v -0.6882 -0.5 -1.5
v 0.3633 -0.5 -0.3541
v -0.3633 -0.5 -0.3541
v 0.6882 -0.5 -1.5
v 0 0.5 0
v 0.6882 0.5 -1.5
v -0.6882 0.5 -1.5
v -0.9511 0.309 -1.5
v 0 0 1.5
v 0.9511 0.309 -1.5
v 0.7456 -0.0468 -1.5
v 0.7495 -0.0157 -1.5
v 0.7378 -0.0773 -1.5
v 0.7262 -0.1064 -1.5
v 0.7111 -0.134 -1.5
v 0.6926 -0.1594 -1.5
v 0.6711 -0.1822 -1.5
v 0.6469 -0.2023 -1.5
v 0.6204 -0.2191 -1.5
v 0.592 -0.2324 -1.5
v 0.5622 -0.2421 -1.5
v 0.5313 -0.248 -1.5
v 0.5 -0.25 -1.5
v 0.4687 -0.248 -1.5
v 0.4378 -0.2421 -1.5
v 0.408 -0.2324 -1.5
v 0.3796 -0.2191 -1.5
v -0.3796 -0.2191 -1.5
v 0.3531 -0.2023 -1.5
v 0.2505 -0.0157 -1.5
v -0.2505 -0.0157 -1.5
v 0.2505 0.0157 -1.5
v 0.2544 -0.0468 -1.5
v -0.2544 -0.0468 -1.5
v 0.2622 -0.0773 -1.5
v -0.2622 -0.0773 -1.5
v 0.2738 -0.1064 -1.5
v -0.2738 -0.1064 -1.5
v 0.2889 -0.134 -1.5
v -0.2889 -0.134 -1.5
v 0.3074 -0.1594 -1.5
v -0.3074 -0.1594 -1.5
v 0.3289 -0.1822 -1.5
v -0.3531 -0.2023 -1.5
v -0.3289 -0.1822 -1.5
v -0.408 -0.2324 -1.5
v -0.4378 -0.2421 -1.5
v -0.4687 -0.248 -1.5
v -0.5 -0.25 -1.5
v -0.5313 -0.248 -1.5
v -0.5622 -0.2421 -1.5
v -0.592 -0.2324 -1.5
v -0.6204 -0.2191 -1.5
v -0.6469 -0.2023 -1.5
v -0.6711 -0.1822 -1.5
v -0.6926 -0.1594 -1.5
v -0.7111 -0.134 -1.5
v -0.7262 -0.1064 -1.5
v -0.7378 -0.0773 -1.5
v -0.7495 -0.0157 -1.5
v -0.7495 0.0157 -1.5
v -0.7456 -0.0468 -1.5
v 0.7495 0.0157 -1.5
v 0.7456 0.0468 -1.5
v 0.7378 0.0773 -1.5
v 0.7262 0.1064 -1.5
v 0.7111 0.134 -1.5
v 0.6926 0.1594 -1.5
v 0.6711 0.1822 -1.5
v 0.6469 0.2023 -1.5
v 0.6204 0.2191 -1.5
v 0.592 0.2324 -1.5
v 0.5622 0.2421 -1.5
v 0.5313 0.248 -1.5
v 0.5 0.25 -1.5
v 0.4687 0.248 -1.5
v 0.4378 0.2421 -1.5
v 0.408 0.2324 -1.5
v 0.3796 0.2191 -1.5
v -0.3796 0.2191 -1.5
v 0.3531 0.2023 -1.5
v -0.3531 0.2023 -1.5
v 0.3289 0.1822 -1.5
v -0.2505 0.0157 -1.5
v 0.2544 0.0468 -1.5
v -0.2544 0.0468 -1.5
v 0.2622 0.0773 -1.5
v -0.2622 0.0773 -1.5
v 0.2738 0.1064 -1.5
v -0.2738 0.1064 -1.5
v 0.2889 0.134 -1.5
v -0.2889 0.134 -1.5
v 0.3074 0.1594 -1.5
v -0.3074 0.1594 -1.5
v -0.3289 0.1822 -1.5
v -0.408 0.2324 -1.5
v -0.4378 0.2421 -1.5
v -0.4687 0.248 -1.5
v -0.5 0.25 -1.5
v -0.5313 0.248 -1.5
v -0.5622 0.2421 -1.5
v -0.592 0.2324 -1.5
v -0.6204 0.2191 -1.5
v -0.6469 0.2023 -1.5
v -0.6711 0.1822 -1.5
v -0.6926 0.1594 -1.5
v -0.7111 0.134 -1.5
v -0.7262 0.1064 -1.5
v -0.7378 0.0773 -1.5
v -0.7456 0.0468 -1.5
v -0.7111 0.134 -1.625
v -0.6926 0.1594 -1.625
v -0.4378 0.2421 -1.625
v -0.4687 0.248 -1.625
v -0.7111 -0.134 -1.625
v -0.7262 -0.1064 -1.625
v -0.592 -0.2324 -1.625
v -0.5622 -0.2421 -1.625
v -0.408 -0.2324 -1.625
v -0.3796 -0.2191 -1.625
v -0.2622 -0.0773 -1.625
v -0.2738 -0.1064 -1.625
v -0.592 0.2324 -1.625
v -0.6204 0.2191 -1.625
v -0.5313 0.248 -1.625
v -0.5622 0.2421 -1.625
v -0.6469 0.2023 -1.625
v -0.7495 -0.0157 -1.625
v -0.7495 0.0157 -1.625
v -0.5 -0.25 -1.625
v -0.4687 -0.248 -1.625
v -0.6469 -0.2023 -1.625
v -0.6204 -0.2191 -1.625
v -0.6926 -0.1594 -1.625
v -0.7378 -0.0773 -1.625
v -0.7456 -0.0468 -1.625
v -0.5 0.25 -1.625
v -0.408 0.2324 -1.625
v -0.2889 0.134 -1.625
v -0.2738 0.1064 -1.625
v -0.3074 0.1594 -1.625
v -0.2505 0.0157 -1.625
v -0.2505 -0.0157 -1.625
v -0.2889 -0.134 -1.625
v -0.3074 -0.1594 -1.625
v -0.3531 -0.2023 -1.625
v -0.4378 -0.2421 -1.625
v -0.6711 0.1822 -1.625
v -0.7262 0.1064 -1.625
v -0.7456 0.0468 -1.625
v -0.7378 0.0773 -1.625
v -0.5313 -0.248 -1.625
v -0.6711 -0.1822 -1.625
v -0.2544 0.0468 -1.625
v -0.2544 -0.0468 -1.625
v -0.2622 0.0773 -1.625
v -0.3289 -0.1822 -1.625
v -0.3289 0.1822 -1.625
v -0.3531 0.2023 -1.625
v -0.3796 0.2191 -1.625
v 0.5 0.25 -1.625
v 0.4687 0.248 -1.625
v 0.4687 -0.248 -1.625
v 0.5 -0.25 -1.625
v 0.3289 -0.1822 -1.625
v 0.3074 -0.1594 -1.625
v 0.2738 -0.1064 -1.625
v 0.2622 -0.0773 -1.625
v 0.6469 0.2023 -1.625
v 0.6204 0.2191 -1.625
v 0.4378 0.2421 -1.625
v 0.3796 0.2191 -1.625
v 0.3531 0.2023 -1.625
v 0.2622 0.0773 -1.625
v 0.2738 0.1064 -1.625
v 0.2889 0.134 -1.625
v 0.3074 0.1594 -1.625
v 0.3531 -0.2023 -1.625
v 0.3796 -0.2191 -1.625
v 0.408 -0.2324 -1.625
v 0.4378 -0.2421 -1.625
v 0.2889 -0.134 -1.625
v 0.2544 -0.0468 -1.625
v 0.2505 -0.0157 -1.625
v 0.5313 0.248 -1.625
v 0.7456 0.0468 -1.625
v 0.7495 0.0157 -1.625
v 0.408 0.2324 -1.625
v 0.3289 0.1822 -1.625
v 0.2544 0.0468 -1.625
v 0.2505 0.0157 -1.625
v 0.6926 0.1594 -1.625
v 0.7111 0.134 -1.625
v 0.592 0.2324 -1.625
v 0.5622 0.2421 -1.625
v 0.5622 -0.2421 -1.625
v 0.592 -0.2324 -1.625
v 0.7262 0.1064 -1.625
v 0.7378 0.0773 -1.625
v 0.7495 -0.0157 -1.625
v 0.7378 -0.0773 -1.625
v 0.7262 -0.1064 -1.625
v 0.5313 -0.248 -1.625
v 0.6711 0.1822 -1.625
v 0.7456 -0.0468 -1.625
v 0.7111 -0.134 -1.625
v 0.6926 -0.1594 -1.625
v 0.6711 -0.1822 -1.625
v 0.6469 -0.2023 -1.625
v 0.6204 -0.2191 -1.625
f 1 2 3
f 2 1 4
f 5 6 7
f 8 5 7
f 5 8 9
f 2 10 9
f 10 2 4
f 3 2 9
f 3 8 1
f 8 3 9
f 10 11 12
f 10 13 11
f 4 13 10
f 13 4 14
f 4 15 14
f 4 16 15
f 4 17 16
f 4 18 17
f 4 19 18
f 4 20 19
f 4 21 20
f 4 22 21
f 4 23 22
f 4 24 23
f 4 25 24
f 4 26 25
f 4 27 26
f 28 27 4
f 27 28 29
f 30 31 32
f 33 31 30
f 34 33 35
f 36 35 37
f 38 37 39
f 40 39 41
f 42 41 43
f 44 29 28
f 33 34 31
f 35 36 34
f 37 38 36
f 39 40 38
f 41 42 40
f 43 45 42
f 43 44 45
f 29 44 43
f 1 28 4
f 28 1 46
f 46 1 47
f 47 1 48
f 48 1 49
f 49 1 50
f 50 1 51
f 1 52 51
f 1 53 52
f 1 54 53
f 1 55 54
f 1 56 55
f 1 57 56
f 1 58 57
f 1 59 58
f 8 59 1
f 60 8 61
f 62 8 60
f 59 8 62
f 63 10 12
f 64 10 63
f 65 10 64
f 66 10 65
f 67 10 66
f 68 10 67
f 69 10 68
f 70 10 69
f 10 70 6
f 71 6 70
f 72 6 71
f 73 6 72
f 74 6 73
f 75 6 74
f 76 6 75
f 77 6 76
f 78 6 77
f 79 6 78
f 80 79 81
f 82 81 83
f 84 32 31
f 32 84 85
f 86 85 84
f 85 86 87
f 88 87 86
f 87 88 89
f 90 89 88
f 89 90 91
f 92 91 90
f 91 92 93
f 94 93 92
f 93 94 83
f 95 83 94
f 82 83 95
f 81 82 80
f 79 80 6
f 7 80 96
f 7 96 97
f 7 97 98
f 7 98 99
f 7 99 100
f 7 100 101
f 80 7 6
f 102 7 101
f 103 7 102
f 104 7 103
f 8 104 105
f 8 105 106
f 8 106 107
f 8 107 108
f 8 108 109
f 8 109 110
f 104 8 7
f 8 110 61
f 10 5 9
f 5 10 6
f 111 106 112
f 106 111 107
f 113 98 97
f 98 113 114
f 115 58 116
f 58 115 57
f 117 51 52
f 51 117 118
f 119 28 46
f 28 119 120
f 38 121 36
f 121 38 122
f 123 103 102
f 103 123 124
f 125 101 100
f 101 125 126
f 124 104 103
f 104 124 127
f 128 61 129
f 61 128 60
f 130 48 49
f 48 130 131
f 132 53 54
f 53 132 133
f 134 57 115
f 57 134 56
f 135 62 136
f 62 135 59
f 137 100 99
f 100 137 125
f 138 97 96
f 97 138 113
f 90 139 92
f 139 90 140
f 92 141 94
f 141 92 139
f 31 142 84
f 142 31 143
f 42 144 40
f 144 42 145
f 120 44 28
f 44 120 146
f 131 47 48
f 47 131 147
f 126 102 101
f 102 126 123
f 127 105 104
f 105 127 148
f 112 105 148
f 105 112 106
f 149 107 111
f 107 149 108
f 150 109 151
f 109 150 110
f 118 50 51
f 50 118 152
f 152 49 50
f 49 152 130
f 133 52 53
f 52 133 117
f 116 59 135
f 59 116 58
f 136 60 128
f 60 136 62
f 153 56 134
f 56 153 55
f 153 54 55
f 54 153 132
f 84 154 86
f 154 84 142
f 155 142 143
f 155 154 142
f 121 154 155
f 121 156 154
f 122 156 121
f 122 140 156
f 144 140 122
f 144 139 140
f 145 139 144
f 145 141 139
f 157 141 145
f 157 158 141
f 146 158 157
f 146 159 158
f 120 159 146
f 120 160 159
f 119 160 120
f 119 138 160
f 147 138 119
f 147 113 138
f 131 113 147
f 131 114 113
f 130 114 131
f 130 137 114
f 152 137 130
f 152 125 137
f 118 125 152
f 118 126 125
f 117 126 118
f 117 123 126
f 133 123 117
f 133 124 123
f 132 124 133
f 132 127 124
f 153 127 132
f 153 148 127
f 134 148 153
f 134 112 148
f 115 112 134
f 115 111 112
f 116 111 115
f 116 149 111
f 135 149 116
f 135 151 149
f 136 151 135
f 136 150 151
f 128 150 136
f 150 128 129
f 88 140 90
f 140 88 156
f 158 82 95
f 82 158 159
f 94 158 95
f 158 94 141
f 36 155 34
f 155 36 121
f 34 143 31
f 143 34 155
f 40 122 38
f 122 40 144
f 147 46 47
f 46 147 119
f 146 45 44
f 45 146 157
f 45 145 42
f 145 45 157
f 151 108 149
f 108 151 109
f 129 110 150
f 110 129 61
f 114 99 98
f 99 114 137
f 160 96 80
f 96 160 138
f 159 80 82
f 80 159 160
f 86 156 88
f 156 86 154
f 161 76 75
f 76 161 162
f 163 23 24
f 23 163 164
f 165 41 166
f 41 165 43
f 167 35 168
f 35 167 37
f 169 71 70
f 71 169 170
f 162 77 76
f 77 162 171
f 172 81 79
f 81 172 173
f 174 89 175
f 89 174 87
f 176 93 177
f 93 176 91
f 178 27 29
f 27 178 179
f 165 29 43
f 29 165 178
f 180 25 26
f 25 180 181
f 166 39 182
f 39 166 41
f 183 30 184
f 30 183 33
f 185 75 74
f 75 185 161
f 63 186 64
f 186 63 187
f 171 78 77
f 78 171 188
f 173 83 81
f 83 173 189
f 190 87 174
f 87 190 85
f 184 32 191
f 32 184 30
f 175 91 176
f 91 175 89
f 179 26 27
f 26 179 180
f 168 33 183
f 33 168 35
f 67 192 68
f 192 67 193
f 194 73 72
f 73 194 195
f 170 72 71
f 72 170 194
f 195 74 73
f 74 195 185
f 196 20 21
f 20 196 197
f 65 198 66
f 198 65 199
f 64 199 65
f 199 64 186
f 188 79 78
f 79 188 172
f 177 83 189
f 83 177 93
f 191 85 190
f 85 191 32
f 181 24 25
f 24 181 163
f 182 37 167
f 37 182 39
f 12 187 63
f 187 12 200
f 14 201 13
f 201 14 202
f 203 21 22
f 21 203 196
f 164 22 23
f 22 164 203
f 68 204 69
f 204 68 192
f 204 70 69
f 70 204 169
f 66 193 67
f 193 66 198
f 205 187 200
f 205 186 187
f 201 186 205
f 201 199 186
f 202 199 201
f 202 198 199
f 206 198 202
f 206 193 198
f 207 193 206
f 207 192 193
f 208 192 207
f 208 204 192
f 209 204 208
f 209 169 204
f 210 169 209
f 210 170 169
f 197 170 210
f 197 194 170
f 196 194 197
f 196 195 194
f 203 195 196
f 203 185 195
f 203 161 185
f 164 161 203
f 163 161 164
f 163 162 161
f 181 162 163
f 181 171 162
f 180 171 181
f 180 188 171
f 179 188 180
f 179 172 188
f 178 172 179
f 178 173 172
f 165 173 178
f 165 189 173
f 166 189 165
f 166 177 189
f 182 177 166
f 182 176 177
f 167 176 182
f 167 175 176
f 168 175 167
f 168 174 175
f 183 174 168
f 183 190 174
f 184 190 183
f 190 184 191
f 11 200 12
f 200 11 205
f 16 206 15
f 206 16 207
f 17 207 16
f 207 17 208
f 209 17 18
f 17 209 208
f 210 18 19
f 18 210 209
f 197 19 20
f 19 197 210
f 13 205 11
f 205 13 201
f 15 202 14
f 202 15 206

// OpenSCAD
// Spaceship
rotate(90, [0,0,1]) rotate(-90, [0,1,0]){
union(){
	translate([-1.5,0.5,0]) rotate(90,[0,1,0]) cylinder(.25, .25, .25, $fn=50, true);
	translate([-1.5,-0.5,0]) rotate(90,[0,1,0]) cylinder(.25, .25, .25, $fn=50, true);
intersection()
{
	cube([7,4,1], center=true);
	rotate(90,[0,1,0]) cylinder(3, 1, 0, true);
}
}
}
